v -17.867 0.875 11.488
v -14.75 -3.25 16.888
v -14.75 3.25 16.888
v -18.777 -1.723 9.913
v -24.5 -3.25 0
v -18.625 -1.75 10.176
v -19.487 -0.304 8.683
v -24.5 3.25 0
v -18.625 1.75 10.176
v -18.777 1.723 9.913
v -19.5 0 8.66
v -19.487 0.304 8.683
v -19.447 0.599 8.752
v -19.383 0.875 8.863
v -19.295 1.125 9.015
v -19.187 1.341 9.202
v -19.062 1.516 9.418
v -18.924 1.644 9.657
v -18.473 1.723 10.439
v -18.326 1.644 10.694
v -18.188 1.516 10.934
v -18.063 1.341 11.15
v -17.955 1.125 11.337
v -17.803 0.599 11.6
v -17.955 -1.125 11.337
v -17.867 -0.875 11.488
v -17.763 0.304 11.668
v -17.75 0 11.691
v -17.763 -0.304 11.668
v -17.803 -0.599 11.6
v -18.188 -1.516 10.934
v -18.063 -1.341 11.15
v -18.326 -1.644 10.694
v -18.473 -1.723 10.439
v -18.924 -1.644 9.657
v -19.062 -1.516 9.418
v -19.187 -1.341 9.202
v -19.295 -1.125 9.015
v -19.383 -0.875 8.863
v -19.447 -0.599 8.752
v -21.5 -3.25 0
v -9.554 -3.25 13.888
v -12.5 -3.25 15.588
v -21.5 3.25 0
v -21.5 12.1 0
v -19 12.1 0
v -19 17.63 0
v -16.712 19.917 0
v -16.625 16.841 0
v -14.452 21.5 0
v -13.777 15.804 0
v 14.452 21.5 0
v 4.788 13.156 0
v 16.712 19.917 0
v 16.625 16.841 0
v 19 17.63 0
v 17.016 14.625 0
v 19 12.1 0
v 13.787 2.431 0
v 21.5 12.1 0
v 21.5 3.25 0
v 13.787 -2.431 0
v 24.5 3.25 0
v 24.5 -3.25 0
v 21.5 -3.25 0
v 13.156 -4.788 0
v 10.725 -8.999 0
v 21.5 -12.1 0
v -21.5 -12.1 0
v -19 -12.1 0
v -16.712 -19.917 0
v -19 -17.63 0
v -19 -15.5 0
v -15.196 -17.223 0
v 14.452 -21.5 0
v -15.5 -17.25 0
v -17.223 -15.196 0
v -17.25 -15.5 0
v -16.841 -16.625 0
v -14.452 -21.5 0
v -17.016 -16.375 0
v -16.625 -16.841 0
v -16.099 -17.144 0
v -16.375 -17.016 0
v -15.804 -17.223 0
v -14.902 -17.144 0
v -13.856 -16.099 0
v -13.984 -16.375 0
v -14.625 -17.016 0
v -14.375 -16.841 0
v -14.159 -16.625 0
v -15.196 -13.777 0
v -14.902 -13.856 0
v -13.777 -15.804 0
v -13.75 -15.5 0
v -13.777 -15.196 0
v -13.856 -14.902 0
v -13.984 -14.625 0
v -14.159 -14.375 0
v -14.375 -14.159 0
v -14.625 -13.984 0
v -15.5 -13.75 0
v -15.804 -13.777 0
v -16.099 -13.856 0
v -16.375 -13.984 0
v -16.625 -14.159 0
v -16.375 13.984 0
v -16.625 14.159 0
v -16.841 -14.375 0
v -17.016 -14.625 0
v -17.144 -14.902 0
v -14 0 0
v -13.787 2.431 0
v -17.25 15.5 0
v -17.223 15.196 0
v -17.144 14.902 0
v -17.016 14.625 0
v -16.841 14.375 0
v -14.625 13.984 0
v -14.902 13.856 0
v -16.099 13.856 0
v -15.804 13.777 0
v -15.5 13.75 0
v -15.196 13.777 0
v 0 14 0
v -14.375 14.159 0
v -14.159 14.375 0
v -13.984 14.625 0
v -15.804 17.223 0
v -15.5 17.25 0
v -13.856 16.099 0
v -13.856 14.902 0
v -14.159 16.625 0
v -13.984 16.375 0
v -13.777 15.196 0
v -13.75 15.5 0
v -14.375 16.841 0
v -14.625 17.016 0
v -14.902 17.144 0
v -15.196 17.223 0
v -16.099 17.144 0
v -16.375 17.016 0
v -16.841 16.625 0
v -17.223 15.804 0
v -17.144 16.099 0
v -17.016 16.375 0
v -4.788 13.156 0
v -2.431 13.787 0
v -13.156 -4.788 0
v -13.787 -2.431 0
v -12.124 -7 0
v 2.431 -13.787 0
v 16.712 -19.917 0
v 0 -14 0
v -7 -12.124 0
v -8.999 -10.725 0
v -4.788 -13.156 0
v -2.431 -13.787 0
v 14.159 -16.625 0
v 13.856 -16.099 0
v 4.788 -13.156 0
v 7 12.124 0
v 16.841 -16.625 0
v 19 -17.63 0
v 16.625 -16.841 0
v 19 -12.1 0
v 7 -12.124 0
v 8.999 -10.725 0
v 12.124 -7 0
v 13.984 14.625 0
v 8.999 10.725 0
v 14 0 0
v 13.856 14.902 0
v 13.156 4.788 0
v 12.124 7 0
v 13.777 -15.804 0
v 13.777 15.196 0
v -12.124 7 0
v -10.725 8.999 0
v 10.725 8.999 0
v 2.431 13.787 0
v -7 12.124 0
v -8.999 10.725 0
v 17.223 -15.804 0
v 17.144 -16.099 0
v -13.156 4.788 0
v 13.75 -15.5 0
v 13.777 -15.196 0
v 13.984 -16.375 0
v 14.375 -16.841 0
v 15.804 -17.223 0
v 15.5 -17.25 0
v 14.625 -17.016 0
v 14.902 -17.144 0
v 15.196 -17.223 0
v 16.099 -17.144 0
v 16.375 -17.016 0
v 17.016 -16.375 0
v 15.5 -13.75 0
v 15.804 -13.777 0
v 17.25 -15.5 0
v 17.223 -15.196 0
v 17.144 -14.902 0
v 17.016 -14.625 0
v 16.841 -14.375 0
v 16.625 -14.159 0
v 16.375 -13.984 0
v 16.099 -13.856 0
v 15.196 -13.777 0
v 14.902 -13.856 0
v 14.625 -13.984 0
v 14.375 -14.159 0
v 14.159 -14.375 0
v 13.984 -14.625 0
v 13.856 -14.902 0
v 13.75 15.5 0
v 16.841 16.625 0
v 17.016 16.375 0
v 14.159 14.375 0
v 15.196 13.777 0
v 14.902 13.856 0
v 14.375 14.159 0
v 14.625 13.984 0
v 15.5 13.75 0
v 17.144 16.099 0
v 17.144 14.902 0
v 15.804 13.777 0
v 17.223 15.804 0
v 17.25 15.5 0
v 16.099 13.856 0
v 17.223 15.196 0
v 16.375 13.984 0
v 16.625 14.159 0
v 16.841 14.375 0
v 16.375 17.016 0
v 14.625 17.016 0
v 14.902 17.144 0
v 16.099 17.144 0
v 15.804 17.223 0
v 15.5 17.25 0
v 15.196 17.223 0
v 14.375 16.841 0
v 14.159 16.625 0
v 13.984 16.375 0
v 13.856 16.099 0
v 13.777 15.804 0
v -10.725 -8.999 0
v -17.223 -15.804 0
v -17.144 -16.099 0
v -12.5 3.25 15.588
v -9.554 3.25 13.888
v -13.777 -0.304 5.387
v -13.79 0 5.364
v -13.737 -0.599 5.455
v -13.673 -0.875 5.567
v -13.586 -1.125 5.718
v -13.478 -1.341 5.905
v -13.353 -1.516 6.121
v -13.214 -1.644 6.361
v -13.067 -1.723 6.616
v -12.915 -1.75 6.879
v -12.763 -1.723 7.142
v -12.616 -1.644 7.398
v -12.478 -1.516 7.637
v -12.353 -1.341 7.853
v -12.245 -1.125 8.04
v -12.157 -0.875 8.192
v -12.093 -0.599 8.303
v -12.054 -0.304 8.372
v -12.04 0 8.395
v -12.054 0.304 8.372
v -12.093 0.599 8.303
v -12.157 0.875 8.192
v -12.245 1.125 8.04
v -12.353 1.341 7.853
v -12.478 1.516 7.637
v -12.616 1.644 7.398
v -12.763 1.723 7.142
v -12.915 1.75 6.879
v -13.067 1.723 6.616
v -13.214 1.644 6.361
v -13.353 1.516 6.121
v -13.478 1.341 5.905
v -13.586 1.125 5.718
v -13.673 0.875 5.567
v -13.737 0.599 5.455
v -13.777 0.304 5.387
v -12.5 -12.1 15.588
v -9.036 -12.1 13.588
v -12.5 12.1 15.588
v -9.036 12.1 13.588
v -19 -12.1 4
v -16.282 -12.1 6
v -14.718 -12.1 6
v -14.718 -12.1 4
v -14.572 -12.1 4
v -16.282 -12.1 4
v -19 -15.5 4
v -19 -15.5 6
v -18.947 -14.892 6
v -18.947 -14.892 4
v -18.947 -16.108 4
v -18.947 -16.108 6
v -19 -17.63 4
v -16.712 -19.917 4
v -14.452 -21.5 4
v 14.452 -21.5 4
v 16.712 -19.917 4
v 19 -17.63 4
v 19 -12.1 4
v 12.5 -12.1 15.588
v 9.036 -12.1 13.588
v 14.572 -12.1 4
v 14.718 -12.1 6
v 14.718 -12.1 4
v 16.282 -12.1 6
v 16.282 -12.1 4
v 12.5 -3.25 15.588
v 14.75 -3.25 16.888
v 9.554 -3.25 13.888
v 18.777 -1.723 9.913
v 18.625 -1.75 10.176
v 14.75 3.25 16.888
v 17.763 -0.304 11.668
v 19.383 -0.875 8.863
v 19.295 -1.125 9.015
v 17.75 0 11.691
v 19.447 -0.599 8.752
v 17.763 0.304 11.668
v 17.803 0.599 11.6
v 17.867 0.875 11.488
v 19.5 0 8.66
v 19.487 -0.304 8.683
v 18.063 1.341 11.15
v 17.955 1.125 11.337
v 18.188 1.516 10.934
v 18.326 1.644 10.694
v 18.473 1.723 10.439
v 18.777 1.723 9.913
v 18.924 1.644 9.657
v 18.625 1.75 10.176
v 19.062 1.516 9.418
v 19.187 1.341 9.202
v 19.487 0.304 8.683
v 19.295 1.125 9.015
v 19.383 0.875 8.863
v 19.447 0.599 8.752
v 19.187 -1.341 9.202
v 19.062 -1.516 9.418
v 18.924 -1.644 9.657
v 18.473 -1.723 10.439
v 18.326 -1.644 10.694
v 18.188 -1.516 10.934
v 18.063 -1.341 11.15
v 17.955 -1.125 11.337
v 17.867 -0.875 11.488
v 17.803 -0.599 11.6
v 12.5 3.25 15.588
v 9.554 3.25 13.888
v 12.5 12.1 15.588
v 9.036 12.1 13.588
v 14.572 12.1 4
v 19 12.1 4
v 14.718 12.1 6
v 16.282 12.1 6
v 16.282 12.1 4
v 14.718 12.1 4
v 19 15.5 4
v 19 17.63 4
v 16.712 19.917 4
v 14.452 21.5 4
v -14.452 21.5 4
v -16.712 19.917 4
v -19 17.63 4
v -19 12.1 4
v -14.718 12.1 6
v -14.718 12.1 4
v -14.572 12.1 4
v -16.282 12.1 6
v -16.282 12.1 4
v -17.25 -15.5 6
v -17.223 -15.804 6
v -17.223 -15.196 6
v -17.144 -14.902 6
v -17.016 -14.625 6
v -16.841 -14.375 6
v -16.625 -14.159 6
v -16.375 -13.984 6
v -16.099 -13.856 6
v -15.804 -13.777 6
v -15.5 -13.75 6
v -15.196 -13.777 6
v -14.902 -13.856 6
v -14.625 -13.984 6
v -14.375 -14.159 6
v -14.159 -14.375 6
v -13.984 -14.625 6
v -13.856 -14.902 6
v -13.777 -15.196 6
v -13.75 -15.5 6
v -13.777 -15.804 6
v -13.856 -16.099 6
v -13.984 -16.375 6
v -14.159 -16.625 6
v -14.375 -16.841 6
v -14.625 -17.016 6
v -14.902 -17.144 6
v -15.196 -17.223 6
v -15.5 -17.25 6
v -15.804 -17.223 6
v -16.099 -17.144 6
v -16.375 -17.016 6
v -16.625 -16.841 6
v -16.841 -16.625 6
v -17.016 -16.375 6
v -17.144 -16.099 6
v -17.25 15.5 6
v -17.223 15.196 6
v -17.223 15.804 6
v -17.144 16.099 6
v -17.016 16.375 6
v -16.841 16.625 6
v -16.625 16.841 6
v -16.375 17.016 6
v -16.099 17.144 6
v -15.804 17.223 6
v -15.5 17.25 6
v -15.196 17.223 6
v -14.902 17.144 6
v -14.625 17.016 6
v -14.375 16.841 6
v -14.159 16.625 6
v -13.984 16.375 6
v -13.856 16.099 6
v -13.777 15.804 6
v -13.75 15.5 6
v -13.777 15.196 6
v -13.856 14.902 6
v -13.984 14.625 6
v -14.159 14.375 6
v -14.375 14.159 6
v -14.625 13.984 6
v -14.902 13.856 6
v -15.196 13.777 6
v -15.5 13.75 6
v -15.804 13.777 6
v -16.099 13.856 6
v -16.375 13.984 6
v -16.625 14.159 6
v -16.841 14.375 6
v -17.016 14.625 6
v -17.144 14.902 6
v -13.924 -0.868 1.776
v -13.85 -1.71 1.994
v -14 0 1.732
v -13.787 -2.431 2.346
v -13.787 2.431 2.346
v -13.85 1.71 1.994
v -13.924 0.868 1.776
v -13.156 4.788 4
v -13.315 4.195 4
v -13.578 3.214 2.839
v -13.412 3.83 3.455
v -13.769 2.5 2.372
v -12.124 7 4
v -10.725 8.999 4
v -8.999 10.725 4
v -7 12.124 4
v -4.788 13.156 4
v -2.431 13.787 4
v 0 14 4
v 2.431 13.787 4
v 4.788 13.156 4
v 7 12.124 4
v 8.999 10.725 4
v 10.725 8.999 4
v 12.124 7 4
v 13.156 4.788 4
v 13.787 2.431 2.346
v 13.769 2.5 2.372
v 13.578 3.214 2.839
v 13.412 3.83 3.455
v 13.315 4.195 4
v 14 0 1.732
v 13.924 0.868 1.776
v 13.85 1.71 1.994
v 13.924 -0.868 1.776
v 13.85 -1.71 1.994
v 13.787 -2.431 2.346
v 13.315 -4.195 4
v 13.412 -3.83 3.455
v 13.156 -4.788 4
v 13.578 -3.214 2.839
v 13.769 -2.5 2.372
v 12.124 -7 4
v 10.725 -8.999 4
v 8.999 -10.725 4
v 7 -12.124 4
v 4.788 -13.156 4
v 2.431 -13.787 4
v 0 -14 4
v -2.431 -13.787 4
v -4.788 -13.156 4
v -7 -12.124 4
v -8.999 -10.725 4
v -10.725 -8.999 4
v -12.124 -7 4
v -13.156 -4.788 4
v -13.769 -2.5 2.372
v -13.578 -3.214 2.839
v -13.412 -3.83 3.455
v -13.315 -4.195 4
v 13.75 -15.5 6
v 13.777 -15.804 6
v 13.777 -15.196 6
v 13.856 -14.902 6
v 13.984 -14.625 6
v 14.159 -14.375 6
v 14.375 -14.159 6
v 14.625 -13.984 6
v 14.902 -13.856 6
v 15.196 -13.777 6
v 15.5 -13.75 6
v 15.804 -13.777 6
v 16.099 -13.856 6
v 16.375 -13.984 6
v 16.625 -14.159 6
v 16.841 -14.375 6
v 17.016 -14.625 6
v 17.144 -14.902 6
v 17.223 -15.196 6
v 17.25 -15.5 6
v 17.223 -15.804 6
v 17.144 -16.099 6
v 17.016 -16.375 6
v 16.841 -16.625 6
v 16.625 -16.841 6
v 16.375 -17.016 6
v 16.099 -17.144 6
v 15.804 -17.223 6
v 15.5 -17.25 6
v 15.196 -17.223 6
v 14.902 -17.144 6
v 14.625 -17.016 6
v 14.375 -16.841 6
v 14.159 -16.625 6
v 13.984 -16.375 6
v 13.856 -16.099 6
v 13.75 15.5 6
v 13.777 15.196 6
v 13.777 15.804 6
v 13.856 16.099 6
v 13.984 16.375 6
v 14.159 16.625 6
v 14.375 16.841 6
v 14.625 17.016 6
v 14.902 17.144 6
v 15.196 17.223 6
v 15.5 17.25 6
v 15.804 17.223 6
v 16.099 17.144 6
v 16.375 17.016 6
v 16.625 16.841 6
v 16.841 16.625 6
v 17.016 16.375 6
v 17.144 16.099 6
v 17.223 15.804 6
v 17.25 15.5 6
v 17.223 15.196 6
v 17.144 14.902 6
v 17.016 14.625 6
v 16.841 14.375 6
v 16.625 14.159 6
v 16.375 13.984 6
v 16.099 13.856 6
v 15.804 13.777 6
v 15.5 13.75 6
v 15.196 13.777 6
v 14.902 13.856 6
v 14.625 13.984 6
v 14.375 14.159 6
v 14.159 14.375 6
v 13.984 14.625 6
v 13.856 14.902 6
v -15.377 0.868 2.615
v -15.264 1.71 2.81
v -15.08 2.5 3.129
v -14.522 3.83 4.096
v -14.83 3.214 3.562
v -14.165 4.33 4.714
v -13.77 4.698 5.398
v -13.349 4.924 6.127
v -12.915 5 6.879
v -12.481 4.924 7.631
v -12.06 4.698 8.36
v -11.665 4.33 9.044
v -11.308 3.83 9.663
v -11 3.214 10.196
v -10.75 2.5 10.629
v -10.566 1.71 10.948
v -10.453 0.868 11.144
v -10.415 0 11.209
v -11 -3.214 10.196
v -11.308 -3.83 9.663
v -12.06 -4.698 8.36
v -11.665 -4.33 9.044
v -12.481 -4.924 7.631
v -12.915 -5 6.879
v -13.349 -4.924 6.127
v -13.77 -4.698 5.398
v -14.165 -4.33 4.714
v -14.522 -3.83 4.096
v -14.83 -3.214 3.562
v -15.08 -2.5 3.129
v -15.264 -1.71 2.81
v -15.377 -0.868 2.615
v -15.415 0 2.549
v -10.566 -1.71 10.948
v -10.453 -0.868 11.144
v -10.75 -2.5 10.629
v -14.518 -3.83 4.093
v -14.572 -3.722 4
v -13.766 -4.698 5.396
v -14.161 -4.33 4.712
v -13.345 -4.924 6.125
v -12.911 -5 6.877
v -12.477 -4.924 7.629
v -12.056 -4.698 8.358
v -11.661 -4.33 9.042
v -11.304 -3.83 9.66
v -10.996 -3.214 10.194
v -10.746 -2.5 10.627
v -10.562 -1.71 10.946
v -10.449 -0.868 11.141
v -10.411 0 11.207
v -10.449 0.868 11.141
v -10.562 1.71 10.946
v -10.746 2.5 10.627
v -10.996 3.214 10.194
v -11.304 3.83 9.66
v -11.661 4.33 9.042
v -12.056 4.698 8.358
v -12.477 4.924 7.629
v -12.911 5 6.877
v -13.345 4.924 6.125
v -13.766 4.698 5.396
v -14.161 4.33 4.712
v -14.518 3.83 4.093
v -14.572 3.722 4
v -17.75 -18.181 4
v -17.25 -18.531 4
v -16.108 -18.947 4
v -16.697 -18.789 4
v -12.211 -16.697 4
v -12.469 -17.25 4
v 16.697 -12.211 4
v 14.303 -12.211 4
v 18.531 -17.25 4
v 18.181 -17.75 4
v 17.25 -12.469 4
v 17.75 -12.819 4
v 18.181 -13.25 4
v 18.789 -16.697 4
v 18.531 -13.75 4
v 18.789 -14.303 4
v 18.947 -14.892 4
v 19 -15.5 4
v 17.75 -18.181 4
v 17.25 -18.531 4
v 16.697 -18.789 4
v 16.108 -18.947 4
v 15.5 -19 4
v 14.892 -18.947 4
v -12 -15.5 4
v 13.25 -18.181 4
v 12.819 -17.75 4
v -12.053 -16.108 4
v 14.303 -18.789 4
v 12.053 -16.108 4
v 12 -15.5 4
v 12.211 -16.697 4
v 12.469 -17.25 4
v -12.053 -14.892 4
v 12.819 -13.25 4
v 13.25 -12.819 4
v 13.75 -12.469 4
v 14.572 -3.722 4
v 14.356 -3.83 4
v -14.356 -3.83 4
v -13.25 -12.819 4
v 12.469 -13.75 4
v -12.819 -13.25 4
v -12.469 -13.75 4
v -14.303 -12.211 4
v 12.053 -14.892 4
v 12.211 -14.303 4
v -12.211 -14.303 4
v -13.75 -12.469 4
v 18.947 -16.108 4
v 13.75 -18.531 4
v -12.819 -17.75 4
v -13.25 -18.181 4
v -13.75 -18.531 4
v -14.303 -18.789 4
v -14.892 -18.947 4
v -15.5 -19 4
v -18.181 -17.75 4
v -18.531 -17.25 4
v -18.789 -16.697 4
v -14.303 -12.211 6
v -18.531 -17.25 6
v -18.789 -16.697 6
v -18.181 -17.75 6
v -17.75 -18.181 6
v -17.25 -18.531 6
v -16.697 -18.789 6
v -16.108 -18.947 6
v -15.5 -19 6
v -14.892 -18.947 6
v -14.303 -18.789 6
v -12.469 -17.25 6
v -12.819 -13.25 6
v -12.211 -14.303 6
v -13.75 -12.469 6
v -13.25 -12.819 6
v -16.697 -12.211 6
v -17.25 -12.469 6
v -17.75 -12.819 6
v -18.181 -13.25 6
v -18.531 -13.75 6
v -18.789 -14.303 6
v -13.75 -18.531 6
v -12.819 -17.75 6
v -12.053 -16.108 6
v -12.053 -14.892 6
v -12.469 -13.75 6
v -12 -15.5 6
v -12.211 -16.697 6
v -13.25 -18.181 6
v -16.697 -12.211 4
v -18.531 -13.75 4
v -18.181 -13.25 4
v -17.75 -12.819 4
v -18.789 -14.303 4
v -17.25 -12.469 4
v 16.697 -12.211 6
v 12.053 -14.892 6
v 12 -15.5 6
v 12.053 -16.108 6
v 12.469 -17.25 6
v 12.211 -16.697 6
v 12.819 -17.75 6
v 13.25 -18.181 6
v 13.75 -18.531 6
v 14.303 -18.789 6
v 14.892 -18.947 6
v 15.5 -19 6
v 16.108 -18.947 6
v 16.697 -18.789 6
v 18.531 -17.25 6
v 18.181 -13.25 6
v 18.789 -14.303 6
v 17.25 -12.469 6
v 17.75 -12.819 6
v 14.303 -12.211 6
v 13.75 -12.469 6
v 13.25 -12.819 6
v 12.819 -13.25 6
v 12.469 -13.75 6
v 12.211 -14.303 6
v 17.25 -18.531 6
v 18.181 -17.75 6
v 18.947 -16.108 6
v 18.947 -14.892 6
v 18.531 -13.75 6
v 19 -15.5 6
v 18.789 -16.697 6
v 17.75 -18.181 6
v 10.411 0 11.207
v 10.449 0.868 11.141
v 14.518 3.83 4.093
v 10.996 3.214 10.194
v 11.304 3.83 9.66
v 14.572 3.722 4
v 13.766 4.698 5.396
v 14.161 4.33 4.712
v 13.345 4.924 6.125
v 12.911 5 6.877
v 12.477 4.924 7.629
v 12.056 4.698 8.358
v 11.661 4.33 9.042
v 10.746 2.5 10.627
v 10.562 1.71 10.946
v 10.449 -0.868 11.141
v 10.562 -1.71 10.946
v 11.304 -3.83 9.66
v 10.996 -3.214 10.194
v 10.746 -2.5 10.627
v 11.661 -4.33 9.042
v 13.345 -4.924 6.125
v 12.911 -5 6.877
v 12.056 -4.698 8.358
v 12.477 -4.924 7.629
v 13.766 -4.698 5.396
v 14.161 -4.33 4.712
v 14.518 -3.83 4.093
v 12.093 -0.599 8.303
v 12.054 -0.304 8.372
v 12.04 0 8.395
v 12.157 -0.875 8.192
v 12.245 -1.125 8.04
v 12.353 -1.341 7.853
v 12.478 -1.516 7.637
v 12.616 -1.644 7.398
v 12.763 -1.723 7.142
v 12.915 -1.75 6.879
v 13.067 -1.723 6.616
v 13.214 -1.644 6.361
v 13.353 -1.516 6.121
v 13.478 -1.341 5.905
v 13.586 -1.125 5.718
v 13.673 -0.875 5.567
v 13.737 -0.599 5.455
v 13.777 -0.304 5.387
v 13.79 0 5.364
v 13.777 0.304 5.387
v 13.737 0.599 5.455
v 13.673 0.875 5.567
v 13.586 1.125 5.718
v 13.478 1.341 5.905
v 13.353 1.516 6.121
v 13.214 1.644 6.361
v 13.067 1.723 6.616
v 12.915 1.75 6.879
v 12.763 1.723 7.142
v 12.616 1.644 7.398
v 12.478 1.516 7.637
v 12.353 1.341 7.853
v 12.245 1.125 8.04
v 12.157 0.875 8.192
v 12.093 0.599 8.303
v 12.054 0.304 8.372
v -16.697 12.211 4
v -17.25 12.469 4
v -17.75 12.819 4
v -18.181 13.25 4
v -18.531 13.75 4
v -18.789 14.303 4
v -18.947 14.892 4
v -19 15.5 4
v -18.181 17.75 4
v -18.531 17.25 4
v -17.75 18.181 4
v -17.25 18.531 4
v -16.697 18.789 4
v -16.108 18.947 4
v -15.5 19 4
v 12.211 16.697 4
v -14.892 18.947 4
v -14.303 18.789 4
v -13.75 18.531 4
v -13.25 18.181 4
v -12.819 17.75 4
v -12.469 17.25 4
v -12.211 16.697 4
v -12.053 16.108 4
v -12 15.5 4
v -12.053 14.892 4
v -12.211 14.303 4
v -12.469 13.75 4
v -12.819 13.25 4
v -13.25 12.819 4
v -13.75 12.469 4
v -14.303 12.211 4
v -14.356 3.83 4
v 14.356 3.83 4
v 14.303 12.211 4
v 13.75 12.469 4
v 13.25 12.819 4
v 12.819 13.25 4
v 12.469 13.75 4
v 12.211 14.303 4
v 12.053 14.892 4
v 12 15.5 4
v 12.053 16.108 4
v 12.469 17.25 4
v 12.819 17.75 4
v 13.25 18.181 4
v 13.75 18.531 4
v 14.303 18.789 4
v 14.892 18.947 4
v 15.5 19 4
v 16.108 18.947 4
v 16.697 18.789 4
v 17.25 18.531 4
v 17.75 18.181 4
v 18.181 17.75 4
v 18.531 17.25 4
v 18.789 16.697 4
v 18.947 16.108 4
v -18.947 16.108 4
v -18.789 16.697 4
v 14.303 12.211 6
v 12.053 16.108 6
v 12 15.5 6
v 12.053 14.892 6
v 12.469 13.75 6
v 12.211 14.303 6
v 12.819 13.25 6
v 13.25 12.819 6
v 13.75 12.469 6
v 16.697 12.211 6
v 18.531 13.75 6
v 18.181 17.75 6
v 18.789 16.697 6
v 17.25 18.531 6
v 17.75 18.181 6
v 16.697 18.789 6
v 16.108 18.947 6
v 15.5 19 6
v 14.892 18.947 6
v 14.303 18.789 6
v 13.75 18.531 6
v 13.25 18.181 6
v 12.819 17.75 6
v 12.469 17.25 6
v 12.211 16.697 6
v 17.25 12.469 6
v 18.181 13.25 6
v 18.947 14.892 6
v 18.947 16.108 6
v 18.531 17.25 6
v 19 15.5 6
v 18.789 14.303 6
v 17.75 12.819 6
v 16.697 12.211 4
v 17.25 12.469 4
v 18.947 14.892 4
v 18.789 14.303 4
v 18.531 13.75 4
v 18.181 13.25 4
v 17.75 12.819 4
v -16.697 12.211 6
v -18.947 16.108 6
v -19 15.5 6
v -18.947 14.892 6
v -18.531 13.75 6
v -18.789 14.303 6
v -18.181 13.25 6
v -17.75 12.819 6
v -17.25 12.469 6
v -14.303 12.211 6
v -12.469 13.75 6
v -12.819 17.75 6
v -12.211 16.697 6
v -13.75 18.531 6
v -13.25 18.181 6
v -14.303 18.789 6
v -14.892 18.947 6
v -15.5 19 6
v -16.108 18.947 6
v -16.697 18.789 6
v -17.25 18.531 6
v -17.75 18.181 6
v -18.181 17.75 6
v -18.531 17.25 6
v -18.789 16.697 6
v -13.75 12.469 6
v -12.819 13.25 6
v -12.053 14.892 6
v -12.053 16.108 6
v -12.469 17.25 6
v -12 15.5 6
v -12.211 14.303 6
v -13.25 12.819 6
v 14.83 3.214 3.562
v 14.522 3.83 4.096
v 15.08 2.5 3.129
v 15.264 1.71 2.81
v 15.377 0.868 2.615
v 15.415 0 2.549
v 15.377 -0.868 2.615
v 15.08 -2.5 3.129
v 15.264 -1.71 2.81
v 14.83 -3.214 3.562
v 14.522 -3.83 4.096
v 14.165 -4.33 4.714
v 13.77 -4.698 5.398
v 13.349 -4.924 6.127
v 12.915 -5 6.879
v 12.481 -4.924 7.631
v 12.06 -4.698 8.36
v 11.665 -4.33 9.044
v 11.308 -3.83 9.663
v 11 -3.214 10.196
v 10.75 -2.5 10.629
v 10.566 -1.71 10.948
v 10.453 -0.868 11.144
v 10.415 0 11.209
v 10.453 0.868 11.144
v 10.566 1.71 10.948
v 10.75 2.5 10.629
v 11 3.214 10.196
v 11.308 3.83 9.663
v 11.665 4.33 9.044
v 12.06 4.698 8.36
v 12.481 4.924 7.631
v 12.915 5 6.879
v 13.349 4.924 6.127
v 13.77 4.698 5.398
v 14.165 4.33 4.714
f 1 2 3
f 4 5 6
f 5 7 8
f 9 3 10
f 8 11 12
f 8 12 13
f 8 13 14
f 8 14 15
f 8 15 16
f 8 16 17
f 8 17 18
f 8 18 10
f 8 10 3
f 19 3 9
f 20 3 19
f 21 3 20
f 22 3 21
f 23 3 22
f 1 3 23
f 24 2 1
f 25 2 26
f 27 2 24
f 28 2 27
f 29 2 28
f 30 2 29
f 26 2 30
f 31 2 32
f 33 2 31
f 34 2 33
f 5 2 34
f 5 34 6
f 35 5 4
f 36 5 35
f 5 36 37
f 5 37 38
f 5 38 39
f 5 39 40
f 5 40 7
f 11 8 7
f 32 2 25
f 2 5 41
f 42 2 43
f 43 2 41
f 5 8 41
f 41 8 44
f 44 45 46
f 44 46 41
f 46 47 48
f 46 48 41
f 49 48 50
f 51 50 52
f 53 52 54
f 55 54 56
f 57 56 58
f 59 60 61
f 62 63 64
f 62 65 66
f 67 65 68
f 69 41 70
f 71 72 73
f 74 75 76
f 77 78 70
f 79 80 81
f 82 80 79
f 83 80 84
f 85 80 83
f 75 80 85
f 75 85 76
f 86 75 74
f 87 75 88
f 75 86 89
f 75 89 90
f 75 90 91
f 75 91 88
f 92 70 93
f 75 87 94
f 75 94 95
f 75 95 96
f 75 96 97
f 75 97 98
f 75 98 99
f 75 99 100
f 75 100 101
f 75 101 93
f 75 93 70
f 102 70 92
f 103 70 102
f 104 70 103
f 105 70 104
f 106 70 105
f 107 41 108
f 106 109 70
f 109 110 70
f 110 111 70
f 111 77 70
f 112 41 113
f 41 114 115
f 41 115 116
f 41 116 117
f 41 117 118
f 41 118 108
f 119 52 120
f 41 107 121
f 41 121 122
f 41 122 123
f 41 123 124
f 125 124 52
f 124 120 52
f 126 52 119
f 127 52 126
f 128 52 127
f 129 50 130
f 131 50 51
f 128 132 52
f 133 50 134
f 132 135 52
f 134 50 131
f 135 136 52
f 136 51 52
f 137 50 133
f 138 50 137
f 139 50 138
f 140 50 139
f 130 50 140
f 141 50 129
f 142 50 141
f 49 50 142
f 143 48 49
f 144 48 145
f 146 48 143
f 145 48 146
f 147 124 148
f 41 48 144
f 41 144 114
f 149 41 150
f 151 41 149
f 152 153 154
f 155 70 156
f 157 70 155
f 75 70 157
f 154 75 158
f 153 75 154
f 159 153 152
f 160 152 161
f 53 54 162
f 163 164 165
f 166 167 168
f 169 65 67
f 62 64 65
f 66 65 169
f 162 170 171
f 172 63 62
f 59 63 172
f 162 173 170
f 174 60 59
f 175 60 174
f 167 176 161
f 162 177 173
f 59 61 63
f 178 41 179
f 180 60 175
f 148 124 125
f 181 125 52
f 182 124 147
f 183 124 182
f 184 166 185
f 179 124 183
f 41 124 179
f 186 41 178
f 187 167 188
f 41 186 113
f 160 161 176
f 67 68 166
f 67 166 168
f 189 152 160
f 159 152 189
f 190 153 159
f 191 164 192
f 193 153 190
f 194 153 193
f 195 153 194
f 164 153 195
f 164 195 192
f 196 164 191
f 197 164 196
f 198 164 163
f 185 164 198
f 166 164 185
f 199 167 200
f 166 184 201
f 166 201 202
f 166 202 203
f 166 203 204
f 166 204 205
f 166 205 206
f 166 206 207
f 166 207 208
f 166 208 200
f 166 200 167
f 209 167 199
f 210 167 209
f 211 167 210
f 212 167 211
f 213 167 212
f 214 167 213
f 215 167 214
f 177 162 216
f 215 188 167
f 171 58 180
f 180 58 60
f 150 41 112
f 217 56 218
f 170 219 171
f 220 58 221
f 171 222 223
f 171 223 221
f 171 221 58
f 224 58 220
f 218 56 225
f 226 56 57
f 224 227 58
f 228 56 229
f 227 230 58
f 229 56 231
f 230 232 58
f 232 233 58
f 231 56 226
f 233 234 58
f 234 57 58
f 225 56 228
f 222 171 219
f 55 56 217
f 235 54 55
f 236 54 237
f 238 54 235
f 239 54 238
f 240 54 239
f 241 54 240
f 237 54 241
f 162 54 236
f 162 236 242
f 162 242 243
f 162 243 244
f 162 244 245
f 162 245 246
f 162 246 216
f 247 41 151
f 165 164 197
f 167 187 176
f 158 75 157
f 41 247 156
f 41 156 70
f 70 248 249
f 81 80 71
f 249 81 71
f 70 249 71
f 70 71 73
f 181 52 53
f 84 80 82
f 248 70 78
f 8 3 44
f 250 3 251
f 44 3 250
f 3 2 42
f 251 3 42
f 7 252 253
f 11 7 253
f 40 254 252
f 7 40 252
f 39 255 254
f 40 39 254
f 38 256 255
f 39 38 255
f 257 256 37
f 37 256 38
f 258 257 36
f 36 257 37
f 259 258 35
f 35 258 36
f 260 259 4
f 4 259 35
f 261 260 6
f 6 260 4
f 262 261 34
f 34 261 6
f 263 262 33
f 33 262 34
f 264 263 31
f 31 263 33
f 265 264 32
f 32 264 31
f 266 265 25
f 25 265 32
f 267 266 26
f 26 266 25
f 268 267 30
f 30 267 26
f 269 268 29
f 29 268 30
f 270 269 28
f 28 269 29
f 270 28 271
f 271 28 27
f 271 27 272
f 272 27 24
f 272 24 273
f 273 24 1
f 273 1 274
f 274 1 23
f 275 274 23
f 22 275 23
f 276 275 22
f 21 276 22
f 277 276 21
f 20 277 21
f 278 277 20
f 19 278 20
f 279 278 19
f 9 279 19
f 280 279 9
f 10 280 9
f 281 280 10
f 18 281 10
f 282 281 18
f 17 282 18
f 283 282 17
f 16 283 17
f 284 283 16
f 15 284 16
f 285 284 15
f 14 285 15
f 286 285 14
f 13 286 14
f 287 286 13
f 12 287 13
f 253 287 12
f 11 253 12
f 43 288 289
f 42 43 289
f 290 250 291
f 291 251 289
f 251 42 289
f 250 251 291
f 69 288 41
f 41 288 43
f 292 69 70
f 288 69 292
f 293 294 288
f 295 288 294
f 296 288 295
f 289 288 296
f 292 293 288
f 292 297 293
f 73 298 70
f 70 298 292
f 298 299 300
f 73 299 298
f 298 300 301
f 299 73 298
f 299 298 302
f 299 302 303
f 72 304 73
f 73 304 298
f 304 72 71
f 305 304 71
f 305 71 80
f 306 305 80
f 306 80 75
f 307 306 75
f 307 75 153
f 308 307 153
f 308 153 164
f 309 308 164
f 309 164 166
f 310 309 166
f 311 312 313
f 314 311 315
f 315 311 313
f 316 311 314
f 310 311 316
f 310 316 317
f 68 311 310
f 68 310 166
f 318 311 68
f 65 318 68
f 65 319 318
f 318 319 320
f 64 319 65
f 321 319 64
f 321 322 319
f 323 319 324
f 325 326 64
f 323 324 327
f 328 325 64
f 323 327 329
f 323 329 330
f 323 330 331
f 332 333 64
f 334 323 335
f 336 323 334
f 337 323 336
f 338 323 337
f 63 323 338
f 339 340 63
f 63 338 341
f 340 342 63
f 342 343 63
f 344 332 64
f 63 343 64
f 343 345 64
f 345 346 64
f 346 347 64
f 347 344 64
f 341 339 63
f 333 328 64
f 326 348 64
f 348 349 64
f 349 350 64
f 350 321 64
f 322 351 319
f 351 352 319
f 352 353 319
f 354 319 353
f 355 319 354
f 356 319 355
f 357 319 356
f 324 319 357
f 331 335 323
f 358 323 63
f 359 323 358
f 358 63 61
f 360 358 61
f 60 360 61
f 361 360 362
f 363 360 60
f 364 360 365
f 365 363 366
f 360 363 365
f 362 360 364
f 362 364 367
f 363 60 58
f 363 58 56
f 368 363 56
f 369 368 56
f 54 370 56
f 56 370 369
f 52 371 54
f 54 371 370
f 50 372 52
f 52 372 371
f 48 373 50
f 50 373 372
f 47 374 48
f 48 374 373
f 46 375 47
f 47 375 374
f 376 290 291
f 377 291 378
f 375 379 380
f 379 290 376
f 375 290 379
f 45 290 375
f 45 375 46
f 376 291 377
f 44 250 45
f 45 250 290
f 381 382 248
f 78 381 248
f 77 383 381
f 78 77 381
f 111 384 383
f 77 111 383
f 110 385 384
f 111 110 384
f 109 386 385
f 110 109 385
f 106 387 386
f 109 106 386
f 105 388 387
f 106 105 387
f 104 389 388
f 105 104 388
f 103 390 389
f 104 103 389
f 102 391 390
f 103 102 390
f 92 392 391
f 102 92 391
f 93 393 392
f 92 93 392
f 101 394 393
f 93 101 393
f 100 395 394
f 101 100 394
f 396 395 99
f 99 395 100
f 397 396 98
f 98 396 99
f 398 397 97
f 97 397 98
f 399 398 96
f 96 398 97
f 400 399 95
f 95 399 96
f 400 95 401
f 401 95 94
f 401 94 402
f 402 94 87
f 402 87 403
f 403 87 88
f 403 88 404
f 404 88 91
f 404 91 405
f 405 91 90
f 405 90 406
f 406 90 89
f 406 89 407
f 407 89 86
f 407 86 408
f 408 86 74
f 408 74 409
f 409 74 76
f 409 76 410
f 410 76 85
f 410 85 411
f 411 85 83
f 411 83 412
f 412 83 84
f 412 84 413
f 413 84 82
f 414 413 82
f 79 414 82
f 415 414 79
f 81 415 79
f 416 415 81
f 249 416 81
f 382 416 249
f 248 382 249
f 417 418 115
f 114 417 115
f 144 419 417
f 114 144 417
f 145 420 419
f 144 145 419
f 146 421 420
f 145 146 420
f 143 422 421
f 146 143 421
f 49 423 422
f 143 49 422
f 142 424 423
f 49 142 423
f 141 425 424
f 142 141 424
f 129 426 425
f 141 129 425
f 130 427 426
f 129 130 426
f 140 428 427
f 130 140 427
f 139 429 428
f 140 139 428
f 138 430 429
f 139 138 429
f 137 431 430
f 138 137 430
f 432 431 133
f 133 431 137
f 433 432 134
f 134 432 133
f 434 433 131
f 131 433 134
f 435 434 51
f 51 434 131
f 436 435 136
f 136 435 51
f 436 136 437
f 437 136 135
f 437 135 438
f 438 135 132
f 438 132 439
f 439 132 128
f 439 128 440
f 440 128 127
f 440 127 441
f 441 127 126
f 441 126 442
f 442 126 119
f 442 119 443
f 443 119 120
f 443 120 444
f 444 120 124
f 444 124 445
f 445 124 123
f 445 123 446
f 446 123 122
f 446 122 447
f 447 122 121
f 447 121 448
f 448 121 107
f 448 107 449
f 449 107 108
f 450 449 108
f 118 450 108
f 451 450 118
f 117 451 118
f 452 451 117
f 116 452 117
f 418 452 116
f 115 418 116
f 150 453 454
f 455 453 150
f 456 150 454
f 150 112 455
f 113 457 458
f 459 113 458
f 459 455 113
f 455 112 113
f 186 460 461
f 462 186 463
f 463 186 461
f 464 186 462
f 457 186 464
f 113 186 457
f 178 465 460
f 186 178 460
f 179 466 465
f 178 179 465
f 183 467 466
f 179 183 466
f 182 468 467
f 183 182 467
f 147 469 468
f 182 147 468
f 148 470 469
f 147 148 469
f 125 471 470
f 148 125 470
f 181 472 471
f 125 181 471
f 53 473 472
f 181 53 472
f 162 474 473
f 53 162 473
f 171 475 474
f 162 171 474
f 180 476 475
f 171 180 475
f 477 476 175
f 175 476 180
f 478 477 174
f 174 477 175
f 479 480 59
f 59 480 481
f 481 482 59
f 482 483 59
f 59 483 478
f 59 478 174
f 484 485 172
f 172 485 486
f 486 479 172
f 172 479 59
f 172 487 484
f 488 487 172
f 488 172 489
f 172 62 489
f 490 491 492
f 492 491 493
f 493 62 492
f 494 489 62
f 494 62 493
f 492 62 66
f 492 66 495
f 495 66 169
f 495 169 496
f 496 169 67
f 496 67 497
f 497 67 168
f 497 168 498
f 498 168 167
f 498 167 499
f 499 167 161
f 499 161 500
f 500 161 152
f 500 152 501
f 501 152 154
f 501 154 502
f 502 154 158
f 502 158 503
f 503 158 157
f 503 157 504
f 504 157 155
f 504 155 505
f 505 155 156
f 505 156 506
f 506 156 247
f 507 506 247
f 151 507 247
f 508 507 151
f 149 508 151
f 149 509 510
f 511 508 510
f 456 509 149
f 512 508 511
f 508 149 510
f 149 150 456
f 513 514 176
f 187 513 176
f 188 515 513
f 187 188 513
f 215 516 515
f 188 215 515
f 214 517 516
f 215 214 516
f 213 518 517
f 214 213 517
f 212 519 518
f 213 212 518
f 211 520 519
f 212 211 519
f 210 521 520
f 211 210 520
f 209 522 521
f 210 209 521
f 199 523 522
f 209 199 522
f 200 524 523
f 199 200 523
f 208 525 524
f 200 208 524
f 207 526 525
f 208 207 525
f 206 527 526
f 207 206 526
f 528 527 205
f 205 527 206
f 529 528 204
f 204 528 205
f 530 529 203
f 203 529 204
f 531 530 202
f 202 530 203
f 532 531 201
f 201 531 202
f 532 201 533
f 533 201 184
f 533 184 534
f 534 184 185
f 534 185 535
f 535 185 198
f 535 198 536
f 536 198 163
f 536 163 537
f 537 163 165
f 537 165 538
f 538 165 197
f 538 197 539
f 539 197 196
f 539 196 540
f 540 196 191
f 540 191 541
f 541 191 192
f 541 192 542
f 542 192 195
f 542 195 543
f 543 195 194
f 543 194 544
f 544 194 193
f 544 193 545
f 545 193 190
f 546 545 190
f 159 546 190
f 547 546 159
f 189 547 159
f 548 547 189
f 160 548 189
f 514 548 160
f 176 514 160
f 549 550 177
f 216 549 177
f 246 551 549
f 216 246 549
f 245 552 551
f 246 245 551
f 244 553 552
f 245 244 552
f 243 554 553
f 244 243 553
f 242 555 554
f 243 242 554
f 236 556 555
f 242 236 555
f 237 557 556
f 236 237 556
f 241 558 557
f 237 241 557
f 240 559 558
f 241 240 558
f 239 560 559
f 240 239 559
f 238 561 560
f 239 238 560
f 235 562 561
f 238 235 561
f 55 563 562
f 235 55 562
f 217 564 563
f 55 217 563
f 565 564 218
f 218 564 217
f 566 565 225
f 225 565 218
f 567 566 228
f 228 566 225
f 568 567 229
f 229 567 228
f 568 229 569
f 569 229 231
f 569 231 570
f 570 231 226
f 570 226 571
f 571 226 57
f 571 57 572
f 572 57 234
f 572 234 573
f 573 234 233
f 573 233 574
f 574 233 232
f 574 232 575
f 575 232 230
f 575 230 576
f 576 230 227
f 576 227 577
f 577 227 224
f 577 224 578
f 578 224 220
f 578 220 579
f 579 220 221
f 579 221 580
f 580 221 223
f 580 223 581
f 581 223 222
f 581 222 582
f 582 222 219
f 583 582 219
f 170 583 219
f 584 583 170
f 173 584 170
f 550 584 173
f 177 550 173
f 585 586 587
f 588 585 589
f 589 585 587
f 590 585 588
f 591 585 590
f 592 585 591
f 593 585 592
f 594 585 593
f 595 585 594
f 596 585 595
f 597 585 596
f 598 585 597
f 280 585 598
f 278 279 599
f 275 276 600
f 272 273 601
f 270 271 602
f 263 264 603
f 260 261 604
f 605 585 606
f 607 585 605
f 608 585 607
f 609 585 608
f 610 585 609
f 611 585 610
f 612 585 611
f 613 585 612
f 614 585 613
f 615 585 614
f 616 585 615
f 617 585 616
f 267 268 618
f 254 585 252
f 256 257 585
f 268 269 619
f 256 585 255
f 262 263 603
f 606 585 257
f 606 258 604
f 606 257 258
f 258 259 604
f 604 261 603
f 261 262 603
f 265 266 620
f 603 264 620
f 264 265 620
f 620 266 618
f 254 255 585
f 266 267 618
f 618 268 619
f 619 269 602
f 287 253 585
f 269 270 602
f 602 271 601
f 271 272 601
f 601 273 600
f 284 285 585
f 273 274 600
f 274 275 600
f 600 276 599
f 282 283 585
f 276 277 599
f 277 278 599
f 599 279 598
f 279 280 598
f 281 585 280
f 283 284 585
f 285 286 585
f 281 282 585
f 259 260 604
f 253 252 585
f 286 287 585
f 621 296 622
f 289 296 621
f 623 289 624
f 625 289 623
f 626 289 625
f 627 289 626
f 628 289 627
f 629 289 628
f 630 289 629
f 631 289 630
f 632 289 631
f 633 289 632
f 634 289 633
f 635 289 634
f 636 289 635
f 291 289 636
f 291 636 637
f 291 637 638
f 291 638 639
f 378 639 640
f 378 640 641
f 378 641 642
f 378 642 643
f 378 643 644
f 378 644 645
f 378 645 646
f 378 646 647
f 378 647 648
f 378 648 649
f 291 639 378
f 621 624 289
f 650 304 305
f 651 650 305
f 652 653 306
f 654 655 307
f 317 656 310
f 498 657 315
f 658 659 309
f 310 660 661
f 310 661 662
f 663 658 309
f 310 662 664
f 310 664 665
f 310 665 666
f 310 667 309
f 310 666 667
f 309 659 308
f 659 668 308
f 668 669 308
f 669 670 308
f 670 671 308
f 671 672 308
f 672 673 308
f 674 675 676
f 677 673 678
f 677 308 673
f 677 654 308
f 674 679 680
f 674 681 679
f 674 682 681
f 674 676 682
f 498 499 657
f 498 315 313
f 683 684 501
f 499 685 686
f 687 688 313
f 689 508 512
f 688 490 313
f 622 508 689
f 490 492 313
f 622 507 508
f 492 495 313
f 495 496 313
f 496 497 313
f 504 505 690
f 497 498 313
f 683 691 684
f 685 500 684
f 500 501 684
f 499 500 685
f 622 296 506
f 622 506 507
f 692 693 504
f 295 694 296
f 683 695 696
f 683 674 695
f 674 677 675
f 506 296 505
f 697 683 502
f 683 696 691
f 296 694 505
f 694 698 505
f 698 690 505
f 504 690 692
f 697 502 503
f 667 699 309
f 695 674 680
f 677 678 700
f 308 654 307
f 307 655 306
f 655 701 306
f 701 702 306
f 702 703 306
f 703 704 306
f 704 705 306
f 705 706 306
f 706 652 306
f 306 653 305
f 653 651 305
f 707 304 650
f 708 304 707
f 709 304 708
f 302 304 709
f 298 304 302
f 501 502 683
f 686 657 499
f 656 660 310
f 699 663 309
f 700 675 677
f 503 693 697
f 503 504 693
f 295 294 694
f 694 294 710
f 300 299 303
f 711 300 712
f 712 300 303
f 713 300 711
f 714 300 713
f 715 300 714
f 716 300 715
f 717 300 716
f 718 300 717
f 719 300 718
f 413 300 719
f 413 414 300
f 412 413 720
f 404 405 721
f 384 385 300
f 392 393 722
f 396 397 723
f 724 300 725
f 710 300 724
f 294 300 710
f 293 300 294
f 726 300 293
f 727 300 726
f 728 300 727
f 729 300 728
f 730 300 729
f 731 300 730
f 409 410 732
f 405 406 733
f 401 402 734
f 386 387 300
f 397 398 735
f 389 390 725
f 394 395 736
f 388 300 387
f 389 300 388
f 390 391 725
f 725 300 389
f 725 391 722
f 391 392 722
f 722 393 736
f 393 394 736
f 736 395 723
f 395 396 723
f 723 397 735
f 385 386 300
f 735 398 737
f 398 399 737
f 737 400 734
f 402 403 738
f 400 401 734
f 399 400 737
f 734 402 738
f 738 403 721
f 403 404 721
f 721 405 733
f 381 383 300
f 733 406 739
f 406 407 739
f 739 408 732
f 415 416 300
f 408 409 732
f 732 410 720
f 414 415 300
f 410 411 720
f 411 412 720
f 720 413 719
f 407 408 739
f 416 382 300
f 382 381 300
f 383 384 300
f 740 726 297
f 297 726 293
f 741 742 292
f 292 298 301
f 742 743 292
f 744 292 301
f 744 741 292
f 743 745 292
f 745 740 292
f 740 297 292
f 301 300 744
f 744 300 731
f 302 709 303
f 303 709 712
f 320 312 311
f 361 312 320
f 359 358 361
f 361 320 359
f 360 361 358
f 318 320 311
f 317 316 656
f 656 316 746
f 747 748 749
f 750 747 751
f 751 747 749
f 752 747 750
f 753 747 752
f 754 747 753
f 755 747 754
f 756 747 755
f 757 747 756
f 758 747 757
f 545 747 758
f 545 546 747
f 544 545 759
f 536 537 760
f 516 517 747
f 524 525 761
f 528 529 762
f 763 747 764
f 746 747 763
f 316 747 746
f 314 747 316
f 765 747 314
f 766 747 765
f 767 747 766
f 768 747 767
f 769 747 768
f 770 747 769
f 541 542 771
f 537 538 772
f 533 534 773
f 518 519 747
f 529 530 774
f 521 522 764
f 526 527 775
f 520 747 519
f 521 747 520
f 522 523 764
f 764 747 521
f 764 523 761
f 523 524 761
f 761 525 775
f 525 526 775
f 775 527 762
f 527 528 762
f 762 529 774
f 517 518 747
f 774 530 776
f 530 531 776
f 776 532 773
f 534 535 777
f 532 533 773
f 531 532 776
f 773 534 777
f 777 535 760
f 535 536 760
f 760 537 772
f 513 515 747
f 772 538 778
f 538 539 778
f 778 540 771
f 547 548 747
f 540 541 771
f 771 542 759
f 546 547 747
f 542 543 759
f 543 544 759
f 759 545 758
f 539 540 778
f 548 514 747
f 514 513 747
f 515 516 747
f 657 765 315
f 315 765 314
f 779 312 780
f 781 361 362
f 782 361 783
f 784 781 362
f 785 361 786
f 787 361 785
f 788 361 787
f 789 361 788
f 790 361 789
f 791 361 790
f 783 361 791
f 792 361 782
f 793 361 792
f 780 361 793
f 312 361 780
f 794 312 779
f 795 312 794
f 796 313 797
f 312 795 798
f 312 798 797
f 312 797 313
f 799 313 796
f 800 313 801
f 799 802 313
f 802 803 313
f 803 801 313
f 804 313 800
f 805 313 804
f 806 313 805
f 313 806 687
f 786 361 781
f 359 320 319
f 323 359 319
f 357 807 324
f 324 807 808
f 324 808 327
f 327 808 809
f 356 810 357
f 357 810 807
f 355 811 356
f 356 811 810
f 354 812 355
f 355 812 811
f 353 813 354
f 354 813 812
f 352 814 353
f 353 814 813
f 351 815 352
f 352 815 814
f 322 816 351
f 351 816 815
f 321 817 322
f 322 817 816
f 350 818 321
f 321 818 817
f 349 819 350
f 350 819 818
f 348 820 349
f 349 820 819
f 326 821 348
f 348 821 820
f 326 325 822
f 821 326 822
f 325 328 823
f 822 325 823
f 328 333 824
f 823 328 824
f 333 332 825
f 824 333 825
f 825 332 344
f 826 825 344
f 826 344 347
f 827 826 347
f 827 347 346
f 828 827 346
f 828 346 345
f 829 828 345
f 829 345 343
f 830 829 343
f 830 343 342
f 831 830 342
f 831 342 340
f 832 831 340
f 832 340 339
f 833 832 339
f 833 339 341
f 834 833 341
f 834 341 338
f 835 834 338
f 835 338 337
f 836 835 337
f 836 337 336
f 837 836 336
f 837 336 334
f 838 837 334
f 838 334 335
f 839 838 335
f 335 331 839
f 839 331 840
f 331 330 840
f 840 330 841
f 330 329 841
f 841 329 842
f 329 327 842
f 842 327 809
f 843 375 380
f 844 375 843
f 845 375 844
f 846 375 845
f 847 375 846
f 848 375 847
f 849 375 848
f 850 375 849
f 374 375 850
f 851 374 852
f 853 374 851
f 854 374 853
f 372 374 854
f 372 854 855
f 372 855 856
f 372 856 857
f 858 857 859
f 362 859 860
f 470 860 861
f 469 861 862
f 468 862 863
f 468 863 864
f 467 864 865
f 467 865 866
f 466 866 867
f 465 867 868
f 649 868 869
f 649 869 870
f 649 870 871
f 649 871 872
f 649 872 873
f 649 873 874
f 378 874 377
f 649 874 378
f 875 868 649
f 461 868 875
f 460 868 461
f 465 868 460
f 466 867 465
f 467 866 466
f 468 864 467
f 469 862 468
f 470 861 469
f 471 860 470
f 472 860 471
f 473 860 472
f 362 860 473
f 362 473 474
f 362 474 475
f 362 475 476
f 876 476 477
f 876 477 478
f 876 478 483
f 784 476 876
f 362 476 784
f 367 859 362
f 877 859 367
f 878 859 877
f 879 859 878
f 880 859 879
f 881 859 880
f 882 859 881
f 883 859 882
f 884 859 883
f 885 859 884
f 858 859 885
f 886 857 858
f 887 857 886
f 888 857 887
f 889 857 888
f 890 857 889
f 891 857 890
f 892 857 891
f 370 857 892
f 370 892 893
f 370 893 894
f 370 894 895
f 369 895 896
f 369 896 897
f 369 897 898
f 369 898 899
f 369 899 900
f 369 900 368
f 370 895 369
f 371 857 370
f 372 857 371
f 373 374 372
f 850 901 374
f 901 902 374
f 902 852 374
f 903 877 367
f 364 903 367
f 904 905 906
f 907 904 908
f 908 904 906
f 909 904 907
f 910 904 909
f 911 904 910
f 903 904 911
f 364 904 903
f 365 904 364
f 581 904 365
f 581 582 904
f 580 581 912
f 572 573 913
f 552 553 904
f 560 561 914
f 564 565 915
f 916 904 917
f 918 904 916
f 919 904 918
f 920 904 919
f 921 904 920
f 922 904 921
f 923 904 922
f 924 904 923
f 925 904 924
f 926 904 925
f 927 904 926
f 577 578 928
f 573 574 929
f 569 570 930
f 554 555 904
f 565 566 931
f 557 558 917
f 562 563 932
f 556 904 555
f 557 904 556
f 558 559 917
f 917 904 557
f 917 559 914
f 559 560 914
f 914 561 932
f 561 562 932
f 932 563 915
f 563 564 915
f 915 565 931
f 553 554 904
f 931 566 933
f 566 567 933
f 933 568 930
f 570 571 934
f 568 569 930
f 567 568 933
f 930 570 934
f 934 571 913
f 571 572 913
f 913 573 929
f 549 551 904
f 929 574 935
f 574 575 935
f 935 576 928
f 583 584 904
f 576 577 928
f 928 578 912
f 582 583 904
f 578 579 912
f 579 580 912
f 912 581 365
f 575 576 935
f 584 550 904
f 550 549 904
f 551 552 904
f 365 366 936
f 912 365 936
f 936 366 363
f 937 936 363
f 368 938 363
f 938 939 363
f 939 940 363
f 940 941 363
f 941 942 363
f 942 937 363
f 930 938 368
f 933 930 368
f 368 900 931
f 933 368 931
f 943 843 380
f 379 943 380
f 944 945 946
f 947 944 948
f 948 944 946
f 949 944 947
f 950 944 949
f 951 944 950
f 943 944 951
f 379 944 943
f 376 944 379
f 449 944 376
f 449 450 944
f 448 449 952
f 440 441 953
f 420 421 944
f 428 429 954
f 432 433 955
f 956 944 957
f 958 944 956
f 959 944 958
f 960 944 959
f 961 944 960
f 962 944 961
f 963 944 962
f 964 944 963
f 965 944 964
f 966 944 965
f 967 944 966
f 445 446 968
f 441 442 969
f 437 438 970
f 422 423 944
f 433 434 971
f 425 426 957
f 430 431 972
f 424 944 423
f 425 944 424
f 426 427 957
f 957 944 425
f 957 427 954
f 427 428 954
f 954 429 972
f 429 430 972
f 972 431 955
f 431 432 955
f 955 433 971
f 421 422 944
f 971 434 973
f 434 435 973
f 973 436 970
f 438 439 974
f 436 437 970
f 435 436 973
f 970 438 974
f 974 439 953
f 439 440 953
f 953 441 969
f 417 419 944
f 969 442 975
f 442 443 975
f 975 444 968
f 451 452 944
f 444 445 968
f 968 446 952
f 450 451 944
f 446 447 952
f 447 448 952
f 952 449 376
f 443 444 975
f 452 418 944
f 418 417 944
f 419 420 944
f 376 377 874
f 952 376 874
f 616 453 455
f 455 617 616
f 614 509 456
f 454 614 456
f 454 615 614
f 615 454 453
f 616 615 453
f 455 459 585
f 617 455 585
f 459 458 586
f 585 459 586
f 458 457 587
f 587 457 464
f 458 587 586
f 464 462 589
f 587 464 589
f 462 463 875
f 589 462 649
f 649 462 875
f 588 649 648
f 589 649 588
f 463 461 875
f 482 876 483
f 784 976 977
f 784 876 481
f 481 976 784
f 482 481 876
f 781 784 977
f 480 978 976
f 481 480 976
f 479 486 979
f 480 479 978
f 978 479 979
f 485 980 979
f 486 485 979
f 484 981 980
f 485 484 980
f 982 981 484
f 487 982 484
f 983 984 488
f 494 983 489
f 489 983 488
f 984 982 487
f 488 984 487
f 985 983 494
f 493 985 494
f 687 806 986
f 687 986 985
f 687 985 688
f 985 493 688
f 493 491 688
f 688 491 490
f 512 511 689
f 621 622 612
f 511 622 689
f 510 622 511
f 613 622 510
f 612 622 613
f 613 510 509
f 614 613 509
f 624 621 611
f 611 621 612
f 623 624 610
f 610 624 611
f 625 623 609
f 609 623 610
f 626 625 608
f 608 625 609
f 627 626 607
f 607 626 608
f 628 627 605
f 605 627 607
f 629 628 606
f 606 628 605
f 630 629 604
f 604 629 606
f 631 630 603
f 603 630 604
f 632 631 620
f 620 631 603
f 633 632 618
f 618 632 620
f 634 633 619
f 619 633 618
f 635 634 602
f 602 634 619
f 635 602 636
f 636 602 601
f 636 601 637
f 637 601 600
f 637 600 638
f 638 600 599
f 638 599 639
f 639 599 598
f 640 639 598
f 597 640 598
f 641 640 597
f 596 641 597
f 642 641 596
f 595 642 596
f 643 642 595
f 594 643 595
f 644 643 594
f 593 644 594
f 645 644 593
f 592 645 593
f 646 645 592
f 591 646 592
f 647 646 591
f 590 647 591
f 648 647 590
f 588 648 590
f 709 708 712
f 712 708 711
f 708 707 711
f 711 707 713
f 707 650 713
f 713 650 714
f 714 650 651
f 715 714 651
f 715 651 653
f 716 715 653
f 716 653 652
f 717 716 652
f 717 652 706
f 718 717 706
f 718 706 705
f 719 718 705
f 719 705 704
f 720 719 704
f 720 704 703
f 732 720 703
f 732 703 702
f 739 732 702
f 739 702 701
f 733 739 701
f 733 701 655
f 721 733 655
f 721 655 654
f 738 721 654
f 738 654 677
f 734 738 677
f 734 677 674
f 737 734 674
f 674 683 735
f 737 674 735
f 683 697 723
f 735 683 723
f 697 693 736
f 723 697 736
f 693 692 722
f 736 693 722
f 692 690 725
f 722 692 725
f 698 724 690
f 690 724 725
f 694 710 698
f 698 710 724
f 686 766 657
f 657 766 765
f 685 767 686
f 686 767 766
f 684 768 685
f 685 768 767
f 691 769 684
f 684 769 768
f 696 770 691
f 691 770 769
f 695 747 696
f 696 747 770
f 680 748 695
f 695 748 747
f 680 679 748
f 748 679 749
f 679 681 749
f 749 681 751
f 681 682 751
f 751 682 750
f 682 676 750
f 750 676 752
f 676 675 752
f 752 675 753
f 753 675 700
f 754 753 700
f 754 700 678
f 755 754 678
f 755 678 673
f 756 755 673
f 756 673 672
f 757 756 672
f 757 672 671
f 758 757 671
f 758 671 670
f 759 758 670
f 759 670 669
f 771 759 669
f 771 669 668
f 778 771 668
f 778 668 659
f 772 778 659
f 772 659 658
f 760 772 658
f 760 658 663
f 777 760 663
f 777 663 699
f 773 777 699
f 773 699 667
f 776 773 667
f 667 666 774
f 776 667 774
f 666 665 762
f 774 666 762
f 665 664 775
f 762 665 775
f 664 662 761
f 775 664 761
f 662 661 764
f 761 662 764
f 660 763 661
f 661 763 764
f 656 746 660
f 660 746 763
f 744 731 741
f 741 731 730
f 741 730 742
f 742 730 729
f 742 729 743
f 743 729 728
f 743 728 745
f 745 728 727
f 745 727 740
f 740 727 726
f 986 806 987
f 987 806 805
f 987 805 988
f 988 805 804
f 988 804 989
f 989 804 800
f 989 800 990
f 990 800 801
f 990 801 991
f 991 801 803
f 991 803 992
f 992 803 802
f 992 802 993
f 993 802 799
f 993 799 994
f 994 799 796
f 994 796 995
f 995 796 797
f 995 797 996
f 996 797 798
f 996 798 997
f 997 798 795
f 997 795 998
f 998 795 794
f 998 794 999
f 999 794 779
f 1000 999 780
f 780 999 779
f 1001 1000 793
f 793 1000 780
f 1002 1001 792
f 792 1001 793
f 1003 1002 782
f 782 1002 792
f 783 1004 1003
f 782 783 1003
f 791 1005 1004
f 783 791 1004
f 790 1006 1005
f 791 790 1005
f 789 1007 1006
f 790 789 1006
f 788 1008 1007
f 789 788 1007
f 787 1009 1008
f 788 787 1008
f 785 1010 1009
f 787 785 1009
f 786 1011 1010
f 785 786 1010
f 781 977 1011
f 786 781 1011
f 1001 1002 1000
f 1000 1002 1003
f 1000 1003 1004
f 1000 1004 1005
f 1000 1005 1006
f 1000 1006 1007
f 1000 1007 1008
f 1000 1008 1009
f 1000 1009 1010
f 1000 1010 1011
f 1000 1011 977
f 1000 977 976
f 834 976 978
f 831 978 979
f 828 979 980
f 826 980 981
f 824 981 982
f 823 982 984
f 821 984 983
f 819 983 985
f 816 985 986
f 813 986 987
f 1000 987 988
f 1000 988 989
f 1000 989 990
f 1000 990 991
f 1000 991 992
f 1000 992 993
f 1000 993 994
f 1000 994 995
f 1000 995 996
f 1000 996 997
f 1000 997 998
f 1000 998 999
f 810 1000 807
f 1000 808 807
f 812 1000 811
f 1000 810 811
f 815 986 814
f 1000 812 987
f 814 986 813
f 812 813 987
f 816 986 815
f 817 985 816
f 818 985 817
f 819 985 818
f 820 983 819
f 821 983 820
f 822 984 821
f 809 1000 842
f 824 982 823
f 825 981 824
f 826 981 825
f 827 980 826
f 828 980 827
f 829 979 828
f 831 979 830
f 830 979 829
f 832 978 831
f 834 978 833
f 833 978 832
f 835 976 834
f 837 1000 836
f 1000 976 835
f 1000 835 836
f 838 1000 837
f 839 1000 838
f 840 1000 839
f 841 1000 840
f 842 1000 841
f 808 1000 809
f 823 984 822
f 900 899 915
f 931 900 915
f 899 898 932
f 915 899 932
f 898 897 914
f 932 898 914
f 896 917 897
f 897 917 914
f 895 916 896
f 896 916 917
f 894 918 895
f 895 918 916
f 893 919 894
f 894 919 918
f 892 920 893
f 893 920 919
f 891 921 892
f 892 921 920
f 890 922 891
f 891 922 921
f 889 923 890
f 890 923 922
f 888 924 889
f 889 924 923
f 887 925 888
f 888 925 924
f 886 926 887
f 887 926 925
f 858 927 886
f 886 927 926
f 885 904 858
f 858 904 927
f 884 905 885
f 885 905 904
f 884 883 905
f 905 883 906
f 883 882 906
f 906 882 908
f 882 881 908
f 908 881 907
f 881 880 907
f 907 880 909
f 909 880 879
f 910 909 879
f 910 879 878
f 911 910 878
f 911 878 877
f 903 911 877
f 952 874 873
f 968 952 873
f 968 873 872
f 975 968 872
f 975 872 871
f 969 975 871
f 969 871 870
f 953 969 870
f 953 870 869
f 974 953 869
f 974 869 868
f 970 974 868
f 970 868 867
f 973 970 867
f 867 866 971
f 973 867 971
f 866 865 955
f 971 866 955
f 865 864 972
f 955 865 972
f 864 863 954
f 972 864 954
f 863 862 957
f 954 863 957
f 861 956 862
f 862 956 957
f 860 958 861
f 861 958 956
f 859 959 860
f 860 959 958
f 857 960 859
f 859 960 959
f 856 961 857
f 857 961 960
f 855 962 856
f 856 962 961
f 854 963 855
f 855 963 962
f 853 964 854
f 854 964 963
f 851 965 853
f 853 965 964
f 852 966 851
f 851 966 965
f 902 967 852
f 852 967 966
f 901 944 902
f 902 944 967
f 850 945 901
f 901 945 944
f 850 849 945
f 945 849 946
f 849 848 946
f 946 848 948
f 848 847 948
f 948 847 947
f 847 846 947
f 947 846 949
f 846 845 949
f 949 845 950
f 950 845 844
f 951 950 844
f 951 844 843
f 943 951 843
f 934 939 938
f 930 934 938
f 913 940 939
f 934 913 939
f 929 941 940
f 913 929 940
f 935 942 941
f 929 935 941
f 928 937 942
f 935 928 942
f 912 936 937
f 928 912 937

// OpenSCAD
// Nema 16 Motor Mount
thickness=4;
width = 38;

$fn=36;

intersection()
{
	cylinder(d=52,h=50);
difference()
{
	// Solids
	union()
	{

		for( a=[0:90:359] ) rotate([0,0,a]) 
			translate( [15.5,15.5,0] ) cylinder( d=7,h=thickness+2 );

		translate( [-width/2,-21.5,0] ) cube([width,43,4]);

		for( a=[0:180:359] ) rotate([0,0,a]) 
		{

			translate( [width/2+2.5,-12.1,0] )	
			rotate([0,-120,0]) 
			{
				cube([18,24.2,thickness]);
	
			}

			translate( [width/2+5.5,-3.25,0] )	
			rotate([0,-120,0]) 
			{
				cube([19.5,6.5,6]);
	
			}

		}


	}

	// Holes
	cylinder( d=28, h=thickness );
	for( a=[0:90:359] ) rotate([0,0,a]) 
		translate( [15.5,15.5,0] ) cylinder( d=3.5,h=thickness+3 );

	//translate( [0,-6.5] )	
	for( a=[0:180:359] ) rotate([0,0,a]) 
	{

		translate( [width/2,-15] )	
		rotate([0,-120,0]) 
		{
			translate( [9,15,-8] )
			{
				translate([0,0,9.83]) cylinder( d=10,h=5 );
			 cylinder( d=3.5,h=20 );
			}
		}
	}
}
}
